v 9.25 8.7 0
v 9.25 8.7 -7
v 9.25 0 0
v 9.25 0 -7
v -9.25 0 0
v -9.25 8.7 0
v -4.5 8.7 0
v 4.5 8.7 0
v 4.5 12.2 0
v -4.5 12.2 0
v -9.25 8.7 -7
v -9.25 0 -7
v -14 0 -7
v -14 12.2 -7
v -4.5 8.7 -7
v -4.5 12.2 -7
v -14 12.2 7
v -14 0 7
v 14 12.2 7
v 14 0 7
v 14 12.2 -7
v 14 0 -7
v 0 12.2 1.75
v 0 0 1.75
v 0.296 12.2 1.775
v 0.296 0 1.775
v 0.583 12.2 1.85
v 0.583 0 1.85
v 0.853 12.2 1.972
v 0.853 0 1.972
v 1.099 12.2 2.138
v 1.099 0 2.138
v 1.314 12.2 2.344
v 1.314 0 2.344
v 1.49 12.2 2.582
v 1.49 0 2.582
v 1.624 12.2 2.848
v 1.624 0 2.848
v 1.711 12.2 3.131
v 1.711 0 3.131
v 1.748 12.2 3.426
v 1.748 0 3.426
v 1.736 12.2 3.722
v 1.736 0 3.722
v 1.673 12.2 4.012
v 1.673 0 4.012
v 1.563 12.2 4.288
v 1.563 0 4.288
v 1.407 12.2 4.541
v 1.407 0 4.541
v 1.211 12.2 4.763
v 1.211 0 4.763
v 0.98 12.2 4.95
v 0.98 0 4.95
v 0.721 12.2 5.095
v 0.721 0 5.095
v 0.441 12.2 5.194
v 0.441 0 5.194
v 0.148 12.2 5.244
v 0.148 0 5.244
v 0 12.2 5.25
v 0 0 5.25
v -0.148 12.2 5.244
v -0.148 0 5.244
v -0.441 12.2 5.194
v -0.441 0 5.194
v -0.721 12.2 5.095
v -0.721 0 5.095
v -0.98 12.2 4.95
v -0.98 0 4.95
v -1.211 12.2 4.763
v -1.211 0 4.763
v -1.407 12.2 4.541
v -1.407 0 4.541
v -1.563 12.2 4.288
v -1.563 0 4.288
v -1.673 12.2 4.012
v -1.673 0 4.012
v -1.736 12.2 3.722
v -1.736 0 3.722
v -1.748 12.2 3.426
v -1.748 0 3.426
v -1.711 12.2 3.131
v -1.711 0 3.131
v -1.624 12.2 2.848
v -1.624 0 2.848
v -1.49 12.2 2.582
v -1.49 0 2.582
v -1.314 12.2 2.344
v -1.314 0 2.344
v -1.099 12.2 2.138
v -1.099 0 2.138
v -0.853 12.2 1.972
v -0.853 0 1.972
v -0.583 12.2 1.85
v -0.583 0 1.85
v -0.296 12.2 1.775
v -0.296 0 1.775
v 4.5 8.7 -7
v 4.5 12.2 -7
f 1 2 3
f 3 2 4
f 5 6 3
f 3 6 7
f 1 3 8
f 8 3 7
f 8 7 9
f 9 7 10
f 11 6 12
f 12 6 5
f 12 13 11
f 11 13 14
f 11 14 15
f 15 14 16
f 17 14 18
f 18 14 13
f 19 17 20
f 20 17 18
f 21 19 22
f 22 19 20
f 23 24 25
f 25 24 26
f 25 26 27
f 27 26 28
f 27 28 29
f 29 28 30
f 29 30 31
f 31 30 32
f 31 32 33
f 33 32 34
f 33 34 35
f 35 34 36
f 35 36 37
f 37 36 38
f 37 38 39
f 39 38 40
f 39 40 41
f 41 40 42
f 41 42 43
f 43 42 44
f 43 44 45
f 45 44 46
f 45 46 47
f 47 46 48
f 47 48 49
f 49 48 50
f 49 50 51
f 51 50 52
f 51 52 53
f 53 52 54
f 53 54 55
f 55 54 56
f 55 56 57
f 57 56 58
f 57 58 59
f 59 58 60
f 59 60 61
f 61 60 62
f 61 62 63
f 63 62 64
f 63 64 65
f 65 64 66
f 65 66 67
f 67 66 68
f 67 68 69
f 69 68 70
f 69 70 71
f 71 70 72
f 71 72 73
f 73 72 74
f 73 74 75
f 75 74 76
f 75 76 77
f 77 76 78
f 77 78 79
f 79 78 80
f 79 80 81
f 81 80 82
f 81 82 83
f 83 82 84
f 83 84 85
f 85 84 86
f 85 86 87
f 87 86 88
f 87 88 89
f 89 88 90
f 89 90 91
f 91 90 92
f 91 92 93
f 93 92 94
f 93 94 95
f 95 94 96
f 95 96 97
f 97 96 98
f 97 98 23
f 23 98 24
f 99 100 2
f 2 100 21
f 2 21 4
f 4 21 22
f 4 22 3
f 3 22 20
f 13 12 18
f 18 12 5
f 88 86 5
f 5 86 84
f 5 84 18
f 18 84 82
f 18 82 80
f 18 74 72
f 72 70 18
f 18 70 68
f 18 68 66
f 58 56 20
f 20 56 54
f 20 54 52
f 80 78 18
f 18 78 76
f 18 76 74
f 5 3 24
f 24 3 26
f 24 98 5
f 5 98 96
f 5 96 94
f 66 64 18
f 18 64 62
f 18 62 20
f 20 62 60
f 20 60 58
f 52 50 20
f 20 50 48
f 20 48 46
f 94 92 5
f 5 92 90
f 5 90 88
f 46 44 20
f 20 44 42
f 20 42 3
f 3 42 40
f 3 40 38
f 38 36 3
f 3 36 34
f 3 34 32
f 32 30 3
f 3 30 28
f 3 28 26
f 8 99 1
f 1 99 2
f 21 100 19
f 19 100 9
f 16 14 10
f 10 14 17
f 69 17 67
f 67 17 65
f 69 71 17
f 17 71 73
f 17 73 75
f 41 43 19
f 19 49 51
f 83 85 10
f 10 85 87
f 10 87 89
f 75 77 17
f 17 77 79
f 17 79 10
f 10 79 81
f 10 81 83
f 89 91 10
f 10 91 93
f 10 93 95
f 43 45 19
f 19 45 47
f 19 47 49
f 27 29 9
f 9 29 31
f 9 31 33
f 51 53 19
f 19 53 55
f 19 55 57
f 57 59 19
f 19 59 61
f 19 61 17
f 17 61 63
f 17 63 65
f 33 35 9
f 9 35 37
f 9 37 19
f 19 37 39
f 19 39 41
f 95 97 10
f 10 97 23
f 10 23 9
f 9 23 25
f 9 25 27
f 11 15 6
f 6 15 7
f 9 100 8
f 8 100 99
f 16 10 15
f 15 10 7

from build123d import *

# Parameters (mm, degrees)
SKETCH1_R           = 1.75
BOSS_EXTRUDE1_DEPTH = 8.7
BOSS_EXTRUDE2_START = 8.7
SKETCH1_3_R         = 1.75
BOSS_EXTRUDE2_DEPTH = 3.5


with BuildPart() as part:
    # Sketch1 → Boss-Extrude1 (new body)
    with BuildSketch(Plane(origin=(0, 0, 0), x_dir=(1, 0, 0), z_dir=(0, 1, 0))):
        Polygon((-9.25, 7), (-14, 7), (-14, -7), (14, -7), (14, 7), (9.25, 7), (9.25, 0), (4.5, 0), (-4.5, 0), (-9.25, 0), align=None)
        with Locations((0, -3.5)):
            Circle(SKETCH1_R, mode=Mode.SUBTRACT)
    extrude(amount=BOSS_EXTRUDE1_DEPTH)

    # Sketch1<3> → Boss-Extrude2 (add)
    with BuildSketch(Plane(origin=(0, 0, 0), x_dir=(1, 0, 0), z_dir=(0, 1, 0)).offset(BOSS_EXTRUDE2_START)):
        Polygon((-14, 7), (-4.5, 7), (-4.5, 0), (4.5, 0), (4.5, 7), (14, 7), (14, -7), (-14, -7), align=None)
        with Locations((0, -3.5)):
            Circle(SKETCH1_3_R, mode=Mode.SUBTRACT)
    extrude(amount=BOSS_EXTRUDE2_DEPTH)


solid = part.part
